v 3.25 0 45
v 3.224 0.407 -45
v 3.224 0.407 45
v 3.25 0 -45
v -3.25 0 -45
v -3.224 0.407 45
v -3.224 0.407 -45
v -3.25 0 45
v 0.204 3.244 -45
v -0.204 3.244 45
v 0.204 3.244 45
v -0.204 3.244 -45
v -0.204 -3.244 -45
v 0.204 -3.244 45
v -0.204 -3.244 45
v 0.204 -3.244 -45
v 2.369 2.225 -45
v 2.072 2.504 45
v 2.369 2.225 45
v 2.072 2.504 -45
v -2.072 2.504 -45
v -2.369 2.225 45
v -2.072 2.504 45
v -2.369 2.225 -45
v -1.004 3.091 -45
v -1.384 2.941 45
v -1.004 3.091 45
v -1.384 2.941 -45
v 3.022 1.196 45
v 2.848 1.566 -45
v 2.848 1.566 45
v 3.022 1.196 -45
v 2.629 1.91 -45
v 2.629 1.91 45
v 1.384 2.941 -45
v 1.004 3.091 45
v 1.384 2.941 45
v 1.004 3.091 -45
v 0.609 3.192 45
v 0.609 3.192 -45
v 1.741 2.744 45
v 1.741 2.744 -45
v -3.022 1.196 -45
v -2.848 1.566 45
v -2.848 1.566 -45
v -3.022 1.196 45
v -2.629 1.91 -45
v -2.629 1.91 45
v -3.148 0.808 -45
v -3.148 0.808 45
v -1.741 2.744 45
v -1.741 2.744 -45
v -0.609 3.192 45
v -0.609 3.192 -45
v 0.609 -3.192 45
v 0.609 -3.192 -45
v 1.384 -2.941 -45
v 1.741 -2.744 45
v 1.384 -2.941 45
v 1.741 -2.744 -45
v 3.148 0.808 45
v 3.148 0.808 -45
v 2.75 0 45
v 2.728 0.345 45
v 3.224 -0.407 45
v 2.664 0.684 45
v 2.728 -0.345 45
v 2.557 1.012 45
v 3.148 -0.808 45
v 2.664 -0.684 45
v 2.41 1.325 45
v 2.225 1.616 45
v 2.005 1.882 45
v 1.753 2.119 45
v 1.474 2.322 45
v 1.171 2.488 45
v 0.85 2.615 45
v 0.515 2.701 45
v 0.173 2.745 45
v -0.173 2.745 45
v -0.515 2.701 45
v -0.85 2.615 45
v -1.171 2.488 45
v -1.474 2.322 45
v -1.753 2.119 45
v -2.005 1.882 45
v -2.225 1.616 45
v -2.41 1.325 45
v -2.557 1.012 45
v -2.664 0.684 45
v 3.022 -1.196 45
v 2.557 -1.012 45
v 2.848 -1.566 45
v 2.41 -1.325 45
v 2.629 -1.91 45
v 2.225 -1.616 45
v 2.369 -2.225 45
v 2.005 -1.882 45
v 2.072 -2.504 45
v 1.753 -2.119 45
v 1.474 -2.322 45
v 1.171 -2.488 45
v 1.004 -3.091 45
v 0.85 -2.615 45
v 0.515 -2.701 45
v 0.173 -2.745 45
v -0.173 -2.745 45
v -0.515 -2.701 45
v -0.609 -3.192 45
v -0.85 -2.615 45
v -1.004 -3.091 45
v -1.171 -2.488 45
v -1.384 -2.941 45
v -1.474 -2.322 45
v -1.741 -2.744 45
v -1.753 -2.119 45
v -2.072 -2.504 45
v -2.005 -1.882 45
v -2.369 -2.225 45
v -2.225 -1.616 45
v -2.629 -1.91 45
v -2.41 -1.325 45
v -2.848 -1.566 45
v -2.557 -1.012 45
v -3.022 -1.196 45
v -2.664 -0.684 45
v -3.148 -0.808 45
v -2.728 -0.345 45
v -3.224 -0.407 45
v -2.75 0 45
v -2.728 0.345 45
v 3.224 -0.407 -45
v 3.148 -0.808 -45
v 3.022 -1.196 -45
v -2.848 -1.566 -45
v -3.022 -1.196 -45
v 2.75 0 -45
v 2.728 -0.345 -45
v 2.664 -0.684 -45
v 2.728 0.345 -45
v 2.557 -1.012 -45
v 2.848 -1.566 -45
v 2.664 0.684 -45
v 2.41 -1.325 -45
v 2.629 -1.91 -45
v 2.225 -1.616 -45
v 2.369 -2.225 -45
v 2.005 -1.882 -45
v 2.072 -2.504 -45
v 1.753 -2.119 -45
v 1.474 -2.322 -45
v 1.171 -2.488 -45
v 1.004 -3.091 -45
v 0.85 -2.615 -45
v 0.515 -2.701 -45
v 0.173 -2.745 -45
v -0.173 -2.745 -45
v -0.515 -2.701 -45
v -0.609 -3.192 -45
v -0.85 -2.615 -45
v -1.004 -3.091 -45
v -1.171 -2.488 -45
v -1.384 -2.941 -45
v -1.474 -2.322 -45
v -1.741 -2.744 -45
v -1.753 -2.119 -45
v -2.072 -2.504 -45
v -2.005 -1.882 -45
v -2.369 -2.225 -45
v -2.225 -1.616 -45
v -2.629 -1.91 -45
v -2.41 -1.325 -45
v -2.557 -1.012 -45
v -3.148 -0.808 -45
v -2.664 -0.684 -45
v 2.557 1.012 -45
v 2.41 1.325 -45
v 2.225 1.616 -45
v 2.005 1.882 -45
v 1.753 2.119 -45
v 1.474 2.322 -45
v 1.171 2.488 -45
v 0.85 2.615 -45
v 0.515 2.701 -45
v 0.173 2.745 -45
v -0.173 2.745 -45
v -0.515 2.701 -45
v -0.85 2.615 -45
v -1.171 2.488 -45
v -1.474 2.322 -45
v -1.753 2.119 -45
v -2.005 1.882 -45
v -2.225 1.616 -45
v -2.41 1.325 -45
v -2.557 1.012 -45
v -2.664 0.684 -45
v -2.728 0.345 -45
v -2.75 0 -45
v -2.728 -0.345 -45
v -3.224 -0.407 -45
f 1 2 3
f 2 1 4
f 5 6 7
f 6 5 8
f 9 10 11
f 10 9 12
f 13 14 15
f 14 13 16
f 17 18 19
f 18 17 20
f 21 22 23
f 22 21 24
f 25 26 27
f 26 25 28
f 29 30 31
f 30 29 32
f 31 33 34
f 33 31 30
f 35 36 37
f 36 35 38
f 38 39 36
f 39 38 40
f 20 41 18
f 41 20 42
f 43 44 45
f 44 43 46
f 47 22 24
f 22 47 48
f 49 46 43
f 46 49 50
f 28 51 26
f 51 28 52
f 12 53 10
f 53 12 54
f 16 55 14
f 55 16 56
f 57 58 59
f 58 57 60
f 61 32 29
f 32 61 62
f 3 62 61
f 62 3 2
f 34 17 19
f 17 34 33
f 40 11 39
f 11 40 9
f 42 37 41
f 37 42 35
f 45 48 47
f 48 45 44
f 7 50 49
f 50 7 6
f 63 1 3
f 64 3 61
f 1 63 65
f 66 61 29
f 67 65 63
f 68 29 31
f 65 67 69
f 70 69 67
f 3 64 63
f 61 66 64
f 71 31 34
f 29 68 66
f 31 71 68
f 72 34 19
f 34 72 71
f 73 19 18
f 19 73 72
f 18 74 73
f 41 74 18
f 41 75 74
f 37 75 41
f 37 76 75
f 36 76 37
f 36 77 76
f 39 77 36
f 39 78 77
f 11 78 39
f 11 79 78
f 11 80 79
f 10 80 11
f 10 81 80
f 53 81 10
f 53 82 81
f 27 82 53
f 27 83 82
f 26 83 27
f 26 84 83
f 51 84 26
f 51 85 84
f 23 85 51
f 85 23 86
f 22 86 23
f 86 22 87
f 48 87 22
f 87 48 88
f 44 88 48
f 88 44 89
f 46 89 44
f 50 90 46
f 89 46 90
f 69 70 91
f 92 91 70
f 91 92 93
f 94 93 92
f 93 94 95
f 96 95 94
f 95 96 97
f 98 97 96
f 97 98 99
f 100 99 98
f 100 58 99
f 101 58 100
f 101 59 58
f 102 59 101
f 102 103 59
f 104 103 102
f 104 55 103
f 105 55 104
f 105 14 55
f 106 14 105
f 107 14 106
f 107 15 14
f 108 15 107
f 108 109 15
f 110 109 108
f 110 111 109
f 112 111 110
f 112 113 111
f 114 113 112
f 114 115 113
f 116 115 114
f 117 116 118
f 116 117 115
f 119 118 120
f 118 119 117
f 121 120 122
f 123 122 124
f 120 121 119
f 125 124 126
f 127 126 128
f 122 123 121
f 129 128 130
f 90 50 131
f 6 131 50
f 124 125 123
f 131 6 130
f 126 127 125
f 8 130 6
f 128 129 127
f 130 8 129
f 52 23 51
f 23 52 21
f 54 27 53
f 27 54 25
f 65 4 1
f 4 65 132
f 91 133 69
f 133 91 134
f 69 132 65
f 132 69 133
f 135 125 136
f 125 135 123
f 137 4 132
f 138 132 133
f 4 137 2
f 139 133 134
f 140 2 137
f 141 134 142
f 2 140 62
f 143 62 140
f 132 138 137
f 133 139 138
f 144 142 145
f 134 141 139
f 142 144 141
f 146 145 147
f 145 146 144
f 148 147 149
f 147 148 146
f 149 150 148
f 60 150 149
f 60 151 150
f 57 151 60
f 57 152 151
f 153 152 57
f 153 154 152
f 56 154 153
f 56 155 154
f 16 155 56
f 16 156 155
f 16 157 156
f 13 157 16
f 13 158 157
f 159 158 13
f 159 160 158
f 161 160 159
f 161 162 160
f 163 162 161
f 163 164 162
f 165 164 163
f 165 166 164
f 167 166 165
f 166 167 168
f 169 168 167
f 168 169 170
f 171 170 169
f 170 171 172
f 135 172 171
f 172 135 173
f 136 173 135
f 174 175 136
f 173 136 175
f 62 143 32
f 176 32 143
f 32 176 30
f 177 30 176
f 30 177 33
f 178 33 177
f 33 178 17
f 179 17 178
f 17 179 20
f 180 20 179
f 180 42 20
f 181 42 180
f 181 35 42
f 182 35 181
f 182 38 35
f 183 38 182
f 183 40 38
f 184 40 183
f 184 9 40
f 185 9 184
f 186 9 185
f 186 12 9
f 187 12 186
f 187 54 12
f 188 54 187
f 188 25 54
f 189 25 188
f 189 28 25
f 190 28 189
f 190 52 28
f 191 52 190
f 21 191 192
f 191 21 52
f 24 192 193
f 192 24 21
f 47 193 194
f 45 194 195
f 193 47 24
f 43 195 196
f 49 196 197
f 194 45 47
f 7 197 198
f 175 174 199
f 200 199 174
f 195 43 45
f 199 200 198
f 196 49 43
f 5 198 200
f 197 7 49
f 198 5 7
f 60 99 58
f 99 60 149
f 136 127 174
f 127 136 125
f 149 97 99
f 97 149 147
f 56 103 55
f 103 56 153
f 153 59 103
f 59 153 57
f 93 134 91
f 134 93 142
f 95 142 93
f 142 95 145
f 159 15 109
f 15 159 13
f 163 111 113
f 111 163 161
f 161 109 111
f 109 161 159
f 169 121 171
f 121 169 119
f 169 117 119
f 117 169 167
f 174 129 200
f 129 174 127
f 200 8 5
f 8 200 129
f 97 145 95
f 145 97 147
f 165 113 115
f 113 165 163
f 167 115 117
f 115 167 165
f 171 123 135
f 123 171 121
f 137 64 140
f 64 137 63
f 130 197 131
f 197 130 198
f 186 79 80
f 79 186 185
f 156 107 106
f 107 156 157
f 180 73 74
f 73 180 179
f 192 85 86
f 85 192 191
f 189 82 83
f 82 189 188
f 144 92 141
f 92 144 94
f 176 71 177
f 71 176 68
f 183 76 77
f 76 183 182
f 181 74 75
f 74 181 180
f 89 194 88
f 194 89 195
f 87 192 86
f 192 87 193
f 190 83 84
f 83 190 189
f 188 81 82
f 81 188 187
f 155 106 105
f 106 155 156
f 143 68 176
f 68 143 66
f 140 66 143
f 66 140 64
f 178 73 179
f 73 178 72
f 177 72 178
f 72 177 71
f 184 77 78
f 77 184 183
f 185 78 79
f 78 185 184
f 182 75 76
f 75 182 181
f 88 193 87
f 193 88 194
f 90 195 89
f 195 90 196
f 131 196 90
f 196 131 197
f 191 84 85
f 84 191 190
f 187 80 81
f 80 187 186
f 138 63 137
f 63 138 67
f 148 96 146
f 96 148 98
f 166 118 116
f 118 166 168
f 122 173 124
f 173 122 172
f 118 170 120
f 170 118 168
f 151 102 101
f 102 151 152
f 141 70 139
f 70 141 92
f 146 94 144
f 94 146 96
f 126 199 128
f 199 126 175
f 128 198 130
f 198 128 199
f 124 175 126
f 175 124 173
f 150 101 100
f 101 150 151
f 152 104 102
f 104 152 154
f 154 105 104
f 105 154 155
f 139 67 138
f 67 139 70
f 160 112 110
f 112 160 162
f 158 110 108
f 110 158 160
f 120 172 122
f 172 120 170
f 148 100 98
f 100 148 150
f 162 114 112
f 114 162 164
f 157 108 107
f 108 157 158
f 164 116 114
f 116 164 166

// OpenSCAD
$fn = 50;


difference() {
	union() {
		translate(v = [0, 0, -45.0000000000]) {
			cylinder(h = 90, r = 3.2500000000);
		}
	}
	union() {
		translate(v = [0, 0, -100.0000000000]) {
			cylinder(h = 200, r = 2.7500000000);
		}
	}
}
